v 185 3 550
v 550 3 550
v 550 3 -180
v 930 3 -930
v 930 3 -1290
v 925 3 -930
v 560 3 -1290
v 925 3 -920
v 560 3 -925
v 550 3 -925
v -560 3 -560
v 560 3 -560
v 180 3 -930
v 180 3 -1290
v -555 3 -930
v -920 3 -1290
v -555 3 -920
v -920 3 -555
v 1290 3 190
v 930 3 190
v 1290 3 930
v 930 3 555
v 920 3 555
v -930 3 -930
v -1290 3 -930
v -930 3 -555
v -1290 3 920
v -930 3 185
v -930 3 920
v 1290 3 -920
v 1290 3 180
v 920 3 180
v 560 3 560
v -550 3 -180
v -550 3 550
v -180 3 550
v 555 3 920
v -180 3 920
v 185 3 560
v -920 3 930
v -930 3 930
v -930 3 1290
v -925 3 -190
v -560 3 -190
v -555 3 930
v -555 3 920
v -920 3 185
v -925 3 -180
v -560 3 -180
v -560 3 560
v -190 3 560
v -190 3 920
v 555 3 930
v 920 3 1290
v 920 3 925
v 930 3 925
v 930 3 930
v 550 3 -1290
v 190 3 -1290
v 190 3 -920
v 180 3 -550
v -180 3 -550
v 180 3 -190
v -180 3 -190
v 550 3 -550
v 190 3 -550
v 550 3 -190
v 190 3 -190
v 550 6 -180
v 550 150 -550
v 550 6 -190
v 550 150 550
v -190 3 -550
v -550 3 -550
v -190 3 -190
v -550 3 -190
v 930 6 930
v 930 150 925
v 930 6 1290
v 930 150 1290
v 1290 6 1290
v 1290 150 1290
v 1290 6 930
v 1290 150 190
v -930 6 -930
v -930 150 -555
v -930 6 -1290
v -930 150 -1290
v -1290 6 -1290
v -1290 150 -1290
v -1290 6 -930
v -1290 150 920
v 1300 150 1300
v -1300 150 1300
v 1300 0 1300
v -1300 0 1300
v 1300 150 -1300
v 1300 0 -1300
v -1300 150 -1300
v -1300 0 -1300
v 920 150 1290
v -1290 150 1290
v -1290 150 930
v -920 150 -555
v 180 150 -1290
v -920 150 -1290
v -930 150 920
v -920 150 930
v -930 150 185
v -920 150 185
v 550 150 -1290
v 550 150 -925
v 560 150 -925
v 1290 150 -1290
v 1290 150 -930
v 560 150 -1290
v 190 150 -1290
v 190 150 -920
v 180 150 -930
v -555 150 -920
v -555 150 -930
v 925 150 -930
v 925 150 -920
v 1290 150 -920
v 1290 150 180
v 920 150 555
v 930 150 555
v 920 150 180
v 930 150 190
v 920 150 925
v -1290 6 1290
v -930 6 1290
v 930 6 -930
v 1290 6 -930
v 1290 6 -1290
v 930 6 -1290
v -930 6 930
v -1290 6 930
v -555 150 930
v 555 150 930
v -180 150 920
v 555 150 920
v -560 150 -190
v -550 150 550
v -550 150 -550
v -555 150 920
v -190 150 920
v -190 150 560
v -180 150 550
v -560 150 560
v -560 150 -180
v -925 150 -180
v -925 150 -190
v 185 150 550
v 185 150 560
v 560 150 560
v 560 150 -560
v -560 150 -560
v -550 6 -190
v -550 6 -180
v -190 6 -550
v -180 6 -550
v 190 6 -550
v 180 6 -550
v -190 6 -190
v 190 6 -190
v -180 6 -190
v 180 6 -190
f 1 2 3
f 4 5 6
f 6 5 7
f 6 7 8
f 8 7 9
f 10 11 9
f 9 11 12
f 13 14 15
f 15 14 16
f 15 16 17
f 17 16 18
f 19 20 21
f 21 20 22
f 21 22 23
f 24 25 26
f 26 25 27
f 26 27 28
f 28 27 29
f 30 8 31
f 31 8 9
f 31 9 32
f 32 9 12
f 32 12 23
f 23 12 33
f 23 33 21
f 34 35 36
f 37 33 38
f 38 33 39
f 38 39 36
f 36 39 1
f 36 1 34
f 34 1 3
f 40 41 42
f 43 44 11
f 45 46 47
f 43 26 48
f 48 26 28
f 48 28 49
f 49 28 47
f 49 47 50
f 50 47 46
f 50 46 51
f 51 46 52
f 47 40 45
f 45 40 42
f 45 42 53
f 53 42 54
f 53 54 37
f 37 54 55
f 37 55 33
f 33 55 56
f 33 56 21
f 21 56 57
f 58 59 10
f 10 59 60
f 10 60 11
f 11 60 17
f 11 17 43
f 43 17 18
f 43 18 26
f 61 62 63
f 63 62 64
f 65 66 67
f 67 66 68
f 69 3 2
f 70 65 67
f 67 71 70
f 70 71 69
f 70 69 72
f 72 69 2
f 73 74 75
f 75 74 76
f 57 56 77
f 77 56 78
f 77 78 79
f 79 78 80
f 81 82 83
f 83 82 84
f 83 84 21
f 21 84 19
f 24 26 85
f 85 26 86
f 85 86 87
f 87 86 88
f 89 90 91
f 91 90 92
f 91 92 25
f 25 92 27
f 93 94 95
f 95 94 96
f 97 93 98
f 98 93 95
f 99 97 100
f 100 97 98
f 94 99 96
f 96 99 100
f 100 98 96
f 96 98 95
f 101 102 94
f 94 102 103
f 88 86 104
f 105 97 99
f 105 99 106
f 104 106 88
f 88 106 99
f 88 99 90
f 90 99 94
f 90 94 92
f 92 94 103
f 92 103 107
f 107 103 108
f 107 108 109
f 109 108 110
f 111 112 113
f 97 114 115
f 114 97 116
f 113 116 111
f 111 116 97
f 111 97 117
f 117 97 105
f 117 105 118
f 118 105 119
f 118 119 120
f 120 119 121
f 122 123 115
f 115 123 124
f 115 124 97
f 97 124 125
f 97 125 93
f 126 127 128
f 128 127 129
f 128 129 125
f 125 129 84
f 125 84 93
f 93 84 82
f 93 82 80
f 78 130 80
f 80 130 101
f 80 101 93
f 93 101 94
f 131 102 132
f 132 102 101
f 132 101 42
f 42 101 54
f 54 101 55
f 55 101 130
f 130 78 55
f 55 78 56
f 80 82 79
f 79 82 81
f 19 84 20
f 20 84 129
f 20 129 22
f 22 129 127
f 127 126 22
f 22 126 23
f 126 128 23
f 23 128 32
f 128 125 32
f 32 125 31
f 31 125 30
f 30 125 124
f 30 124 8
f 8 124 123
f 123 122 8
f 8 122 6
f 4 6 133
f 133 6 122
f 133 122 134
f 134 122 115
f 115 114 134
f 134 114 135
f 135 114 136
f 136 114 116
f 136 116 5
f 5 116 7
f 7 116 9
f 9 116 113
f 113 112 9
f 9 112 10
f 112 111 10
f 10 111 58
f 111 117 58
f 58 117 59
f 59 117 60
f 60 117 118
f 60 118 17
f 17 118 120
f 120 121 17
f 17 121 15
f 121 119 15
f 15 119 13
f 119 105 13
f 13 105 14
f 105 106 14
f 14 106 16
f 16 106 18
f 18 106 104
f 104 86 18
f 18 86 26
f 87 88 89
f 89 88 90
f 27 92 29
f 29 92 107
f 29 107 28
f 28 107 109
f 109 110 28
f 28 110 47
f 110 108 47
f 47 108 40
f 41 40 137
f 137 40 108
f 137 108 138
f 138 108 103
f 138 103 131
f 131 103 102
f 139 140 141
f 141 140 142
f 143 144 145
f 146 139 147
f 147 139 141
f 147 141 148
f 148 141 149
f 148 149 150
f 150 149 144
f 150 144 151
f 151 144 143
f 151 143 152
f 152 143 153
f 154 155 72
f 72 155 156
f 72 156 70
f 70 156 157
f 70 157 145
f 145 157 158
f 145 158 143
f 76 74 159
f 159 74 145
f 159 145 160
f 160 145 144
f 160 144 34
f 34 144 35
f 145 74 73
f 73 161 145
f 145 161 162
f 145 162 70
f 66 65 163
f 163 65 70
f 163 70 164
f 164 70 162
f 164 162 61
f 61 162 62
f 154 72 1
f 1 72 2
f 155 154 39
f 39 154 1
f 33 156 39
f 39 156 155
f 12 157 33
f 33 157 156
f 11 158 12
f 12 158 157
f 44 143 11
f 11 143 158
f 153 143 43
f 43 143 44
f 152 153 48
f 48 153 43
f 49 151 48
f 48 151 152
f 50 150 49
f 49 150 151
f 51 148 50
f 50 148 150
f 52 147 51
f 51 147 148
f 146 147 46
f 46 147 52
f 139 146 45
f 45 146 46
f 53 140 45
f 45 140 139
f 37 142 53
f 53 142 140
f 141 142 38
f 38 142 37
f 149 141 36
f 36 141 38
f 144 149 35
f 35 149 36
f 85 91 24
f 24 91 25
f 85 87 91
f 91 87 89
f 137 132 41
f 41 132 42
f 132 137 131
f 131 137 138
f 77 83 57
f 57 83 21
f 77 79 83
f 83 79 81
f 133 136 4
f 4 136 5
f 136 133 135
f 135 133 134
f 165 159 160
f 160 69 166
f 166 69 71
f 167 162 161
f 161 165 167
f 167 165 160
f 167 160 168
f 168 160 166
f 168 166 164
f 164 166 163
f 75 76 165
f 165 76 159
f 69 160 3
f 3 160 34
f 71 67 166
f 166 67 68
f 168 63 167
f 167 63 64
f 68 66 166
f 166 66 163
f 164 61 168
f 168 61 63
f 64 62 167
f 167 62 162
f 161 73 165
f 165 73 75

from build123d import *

# Parameters (mm, degrees)
SKETCH1_W               = 2600
SKETCH1_H               = 2600
BOSS_EXTRUDE1_DEPTH     = 150
BOSS_EXTRUDE1_2_DEPTH   = 150
SKETCH2_W               = 2600
SKETCH2_H               = 2600
BOSS_EXTRUDE2_DEPTH     = 3
SKETCH3_W               = 360
SKETCH3_H               = 360
BOSS_EXTRUDE3_DEPTH     = 3
MIRROR2_COPY_1_SKETCH_W = 360
MIRROR2_COPY_1_SKETCH_H = 360
MIRROR2_COPY_1_DEPTH    = 3
SKETCH5_W               = 10
SKETCH5_H               = 365
SKETCH5_W_2             = 1100
SKETCH5_H_2             = 10
BOSS_EXTRUDE4_DEPTH     = 3


with BuildPart() as part:
    # Sketch1 → Boss-Extrude1 (new body)
    with BuildSketch(Plane(origin=(0, 0, 0), x_dir=(1, 0, 0), z_dir=(0, 1, 0))):
        Rectangle(SKETCH1_W, SKETCH1_H)
        Polygon((920, -1290), (-1290, -1290), (-1290, -930), (-920, -930), (-920, -185), (-925, -185), (-930, -185), (-930, -920), (-1290, -920), (-1290, 1290), (-930, 1290), (-930, 555), (-920, 555), (-920, 1290), (180, 1290), (180, 930), (-555, 930), (-555, 920), (190, 920), (190, 1290), (550, 1290), (550, 925), (560, 925), (560, 1290), (1290, 1290), (1290, 930), (925, 930), (925, 920), (1290, 920), (1290, -180), (920, -180), (920, -555), (930, -555), (930, -190), (1290, -190), (1290, -1290), (930, -1290), (930, -925), (920, -925), align=None, mode=Mode.SUBTRACT)
    extrude(amount=BOSS_EXTRUDE1_DEPTH)



with BuildPart() as body_2:
    # Sketch1 → Boss-Extrude1 2 (new body)
    with BuildSketch(Plane(origin=(0, 0, 0), x_dir=(1, 0, 0), z_dir=(0, 1, 0))):
        Polygon((185, -550), (185, -560), (560, -560), (560, 560), (-560, 560), (-560, 190), (-925, 190), (-925, 180), (-560, 180), (-560, -560), (-190, -560), (-190, -920), (-555, -920), (-555, -930), (555, -930), (555, -920), (-180, -920), (-180, -550), (-550, -550), (-550, 550), (550, 550), (550, -550), align=None)
    extrude(amount=BOSS_EXTRUDE1_2_DEPTH)


with BuildPart() as part_1:
    add(part.part)

    add(body_2.part)  # Boss-Extrude2 merges body 2
    # Sketch2 → Boss-Extrude2 (add)
    with BuildSketch(Plane(origin=(0, 0, 0), x_dir=(1, 0, 0), z_dir=(0, 1, 0))):
        Rectangle(SKETCH2_W, SKETCH2_H)
    extrude(amount=BOSS_EXTRUDE2_DEPTH)

    # Sketch3 → Boss-Extrude3 (add)
    with BuildSketch(Plane(origin=(0, 3, 0), x_dir=(1, 0, 0), z_dir=(0, 1, 0))):
        with Locations((-1110, 1110)):
            Rectangle(SKETCH3_W, SKETCH3_H)
    boss_extrude3 = extrude(amount=BOSS_EXTRUDE3_DEPTH)

    # Mirror1: Boss-Extrude3 across plane
    add(boss_extrude3.mirror(Plane.XY))

    # Mirror2: Boss-Extrude3 across plane
    add(boss_extrude3.mirror(Plane(origin=(0, 0, 0), x_dir=(0, 0, 1), z_dir=(1, 0, 0))))

    # Mirror2 copy 1 sketch → Mirror2 copy 1 (add)
    with BuildSketch(Plane(origin=(0, 3, 0), x_dir=(-1, 0, 0), z_dir=(0, 1, 0))):
        with Locations((-1110, 1110)):
            Rectangle(MIRROR2_COPY_1_SKETCH_W, MIRROR2_COPY_1_SKETCH_H)
    extrude(amount=MIRROR2_COPY_1_DEPTH)

    # Sketch5 → Boss-Extrude4 (add)
    with BuildSketch(Plane(origin=(0, 3, 0), x_dir=(1, 0, 0), z_dir=(0, 1, 0))):
        with Locations((-185, 367.5)):
            Rectangle(SKETCH5_W, SKETCH5_H)
        with Locations((0, 185)):
            Rectangle(SKETCH5_W_2, SKETCH5_H_2)
        with Locations((185, 367.5)):
            Rectangle(SKETCH5_W, SKETCH5_H)
    extrude(amount=BOSS_EXTRUDE4_DEPTH)


solid = part_1.part
